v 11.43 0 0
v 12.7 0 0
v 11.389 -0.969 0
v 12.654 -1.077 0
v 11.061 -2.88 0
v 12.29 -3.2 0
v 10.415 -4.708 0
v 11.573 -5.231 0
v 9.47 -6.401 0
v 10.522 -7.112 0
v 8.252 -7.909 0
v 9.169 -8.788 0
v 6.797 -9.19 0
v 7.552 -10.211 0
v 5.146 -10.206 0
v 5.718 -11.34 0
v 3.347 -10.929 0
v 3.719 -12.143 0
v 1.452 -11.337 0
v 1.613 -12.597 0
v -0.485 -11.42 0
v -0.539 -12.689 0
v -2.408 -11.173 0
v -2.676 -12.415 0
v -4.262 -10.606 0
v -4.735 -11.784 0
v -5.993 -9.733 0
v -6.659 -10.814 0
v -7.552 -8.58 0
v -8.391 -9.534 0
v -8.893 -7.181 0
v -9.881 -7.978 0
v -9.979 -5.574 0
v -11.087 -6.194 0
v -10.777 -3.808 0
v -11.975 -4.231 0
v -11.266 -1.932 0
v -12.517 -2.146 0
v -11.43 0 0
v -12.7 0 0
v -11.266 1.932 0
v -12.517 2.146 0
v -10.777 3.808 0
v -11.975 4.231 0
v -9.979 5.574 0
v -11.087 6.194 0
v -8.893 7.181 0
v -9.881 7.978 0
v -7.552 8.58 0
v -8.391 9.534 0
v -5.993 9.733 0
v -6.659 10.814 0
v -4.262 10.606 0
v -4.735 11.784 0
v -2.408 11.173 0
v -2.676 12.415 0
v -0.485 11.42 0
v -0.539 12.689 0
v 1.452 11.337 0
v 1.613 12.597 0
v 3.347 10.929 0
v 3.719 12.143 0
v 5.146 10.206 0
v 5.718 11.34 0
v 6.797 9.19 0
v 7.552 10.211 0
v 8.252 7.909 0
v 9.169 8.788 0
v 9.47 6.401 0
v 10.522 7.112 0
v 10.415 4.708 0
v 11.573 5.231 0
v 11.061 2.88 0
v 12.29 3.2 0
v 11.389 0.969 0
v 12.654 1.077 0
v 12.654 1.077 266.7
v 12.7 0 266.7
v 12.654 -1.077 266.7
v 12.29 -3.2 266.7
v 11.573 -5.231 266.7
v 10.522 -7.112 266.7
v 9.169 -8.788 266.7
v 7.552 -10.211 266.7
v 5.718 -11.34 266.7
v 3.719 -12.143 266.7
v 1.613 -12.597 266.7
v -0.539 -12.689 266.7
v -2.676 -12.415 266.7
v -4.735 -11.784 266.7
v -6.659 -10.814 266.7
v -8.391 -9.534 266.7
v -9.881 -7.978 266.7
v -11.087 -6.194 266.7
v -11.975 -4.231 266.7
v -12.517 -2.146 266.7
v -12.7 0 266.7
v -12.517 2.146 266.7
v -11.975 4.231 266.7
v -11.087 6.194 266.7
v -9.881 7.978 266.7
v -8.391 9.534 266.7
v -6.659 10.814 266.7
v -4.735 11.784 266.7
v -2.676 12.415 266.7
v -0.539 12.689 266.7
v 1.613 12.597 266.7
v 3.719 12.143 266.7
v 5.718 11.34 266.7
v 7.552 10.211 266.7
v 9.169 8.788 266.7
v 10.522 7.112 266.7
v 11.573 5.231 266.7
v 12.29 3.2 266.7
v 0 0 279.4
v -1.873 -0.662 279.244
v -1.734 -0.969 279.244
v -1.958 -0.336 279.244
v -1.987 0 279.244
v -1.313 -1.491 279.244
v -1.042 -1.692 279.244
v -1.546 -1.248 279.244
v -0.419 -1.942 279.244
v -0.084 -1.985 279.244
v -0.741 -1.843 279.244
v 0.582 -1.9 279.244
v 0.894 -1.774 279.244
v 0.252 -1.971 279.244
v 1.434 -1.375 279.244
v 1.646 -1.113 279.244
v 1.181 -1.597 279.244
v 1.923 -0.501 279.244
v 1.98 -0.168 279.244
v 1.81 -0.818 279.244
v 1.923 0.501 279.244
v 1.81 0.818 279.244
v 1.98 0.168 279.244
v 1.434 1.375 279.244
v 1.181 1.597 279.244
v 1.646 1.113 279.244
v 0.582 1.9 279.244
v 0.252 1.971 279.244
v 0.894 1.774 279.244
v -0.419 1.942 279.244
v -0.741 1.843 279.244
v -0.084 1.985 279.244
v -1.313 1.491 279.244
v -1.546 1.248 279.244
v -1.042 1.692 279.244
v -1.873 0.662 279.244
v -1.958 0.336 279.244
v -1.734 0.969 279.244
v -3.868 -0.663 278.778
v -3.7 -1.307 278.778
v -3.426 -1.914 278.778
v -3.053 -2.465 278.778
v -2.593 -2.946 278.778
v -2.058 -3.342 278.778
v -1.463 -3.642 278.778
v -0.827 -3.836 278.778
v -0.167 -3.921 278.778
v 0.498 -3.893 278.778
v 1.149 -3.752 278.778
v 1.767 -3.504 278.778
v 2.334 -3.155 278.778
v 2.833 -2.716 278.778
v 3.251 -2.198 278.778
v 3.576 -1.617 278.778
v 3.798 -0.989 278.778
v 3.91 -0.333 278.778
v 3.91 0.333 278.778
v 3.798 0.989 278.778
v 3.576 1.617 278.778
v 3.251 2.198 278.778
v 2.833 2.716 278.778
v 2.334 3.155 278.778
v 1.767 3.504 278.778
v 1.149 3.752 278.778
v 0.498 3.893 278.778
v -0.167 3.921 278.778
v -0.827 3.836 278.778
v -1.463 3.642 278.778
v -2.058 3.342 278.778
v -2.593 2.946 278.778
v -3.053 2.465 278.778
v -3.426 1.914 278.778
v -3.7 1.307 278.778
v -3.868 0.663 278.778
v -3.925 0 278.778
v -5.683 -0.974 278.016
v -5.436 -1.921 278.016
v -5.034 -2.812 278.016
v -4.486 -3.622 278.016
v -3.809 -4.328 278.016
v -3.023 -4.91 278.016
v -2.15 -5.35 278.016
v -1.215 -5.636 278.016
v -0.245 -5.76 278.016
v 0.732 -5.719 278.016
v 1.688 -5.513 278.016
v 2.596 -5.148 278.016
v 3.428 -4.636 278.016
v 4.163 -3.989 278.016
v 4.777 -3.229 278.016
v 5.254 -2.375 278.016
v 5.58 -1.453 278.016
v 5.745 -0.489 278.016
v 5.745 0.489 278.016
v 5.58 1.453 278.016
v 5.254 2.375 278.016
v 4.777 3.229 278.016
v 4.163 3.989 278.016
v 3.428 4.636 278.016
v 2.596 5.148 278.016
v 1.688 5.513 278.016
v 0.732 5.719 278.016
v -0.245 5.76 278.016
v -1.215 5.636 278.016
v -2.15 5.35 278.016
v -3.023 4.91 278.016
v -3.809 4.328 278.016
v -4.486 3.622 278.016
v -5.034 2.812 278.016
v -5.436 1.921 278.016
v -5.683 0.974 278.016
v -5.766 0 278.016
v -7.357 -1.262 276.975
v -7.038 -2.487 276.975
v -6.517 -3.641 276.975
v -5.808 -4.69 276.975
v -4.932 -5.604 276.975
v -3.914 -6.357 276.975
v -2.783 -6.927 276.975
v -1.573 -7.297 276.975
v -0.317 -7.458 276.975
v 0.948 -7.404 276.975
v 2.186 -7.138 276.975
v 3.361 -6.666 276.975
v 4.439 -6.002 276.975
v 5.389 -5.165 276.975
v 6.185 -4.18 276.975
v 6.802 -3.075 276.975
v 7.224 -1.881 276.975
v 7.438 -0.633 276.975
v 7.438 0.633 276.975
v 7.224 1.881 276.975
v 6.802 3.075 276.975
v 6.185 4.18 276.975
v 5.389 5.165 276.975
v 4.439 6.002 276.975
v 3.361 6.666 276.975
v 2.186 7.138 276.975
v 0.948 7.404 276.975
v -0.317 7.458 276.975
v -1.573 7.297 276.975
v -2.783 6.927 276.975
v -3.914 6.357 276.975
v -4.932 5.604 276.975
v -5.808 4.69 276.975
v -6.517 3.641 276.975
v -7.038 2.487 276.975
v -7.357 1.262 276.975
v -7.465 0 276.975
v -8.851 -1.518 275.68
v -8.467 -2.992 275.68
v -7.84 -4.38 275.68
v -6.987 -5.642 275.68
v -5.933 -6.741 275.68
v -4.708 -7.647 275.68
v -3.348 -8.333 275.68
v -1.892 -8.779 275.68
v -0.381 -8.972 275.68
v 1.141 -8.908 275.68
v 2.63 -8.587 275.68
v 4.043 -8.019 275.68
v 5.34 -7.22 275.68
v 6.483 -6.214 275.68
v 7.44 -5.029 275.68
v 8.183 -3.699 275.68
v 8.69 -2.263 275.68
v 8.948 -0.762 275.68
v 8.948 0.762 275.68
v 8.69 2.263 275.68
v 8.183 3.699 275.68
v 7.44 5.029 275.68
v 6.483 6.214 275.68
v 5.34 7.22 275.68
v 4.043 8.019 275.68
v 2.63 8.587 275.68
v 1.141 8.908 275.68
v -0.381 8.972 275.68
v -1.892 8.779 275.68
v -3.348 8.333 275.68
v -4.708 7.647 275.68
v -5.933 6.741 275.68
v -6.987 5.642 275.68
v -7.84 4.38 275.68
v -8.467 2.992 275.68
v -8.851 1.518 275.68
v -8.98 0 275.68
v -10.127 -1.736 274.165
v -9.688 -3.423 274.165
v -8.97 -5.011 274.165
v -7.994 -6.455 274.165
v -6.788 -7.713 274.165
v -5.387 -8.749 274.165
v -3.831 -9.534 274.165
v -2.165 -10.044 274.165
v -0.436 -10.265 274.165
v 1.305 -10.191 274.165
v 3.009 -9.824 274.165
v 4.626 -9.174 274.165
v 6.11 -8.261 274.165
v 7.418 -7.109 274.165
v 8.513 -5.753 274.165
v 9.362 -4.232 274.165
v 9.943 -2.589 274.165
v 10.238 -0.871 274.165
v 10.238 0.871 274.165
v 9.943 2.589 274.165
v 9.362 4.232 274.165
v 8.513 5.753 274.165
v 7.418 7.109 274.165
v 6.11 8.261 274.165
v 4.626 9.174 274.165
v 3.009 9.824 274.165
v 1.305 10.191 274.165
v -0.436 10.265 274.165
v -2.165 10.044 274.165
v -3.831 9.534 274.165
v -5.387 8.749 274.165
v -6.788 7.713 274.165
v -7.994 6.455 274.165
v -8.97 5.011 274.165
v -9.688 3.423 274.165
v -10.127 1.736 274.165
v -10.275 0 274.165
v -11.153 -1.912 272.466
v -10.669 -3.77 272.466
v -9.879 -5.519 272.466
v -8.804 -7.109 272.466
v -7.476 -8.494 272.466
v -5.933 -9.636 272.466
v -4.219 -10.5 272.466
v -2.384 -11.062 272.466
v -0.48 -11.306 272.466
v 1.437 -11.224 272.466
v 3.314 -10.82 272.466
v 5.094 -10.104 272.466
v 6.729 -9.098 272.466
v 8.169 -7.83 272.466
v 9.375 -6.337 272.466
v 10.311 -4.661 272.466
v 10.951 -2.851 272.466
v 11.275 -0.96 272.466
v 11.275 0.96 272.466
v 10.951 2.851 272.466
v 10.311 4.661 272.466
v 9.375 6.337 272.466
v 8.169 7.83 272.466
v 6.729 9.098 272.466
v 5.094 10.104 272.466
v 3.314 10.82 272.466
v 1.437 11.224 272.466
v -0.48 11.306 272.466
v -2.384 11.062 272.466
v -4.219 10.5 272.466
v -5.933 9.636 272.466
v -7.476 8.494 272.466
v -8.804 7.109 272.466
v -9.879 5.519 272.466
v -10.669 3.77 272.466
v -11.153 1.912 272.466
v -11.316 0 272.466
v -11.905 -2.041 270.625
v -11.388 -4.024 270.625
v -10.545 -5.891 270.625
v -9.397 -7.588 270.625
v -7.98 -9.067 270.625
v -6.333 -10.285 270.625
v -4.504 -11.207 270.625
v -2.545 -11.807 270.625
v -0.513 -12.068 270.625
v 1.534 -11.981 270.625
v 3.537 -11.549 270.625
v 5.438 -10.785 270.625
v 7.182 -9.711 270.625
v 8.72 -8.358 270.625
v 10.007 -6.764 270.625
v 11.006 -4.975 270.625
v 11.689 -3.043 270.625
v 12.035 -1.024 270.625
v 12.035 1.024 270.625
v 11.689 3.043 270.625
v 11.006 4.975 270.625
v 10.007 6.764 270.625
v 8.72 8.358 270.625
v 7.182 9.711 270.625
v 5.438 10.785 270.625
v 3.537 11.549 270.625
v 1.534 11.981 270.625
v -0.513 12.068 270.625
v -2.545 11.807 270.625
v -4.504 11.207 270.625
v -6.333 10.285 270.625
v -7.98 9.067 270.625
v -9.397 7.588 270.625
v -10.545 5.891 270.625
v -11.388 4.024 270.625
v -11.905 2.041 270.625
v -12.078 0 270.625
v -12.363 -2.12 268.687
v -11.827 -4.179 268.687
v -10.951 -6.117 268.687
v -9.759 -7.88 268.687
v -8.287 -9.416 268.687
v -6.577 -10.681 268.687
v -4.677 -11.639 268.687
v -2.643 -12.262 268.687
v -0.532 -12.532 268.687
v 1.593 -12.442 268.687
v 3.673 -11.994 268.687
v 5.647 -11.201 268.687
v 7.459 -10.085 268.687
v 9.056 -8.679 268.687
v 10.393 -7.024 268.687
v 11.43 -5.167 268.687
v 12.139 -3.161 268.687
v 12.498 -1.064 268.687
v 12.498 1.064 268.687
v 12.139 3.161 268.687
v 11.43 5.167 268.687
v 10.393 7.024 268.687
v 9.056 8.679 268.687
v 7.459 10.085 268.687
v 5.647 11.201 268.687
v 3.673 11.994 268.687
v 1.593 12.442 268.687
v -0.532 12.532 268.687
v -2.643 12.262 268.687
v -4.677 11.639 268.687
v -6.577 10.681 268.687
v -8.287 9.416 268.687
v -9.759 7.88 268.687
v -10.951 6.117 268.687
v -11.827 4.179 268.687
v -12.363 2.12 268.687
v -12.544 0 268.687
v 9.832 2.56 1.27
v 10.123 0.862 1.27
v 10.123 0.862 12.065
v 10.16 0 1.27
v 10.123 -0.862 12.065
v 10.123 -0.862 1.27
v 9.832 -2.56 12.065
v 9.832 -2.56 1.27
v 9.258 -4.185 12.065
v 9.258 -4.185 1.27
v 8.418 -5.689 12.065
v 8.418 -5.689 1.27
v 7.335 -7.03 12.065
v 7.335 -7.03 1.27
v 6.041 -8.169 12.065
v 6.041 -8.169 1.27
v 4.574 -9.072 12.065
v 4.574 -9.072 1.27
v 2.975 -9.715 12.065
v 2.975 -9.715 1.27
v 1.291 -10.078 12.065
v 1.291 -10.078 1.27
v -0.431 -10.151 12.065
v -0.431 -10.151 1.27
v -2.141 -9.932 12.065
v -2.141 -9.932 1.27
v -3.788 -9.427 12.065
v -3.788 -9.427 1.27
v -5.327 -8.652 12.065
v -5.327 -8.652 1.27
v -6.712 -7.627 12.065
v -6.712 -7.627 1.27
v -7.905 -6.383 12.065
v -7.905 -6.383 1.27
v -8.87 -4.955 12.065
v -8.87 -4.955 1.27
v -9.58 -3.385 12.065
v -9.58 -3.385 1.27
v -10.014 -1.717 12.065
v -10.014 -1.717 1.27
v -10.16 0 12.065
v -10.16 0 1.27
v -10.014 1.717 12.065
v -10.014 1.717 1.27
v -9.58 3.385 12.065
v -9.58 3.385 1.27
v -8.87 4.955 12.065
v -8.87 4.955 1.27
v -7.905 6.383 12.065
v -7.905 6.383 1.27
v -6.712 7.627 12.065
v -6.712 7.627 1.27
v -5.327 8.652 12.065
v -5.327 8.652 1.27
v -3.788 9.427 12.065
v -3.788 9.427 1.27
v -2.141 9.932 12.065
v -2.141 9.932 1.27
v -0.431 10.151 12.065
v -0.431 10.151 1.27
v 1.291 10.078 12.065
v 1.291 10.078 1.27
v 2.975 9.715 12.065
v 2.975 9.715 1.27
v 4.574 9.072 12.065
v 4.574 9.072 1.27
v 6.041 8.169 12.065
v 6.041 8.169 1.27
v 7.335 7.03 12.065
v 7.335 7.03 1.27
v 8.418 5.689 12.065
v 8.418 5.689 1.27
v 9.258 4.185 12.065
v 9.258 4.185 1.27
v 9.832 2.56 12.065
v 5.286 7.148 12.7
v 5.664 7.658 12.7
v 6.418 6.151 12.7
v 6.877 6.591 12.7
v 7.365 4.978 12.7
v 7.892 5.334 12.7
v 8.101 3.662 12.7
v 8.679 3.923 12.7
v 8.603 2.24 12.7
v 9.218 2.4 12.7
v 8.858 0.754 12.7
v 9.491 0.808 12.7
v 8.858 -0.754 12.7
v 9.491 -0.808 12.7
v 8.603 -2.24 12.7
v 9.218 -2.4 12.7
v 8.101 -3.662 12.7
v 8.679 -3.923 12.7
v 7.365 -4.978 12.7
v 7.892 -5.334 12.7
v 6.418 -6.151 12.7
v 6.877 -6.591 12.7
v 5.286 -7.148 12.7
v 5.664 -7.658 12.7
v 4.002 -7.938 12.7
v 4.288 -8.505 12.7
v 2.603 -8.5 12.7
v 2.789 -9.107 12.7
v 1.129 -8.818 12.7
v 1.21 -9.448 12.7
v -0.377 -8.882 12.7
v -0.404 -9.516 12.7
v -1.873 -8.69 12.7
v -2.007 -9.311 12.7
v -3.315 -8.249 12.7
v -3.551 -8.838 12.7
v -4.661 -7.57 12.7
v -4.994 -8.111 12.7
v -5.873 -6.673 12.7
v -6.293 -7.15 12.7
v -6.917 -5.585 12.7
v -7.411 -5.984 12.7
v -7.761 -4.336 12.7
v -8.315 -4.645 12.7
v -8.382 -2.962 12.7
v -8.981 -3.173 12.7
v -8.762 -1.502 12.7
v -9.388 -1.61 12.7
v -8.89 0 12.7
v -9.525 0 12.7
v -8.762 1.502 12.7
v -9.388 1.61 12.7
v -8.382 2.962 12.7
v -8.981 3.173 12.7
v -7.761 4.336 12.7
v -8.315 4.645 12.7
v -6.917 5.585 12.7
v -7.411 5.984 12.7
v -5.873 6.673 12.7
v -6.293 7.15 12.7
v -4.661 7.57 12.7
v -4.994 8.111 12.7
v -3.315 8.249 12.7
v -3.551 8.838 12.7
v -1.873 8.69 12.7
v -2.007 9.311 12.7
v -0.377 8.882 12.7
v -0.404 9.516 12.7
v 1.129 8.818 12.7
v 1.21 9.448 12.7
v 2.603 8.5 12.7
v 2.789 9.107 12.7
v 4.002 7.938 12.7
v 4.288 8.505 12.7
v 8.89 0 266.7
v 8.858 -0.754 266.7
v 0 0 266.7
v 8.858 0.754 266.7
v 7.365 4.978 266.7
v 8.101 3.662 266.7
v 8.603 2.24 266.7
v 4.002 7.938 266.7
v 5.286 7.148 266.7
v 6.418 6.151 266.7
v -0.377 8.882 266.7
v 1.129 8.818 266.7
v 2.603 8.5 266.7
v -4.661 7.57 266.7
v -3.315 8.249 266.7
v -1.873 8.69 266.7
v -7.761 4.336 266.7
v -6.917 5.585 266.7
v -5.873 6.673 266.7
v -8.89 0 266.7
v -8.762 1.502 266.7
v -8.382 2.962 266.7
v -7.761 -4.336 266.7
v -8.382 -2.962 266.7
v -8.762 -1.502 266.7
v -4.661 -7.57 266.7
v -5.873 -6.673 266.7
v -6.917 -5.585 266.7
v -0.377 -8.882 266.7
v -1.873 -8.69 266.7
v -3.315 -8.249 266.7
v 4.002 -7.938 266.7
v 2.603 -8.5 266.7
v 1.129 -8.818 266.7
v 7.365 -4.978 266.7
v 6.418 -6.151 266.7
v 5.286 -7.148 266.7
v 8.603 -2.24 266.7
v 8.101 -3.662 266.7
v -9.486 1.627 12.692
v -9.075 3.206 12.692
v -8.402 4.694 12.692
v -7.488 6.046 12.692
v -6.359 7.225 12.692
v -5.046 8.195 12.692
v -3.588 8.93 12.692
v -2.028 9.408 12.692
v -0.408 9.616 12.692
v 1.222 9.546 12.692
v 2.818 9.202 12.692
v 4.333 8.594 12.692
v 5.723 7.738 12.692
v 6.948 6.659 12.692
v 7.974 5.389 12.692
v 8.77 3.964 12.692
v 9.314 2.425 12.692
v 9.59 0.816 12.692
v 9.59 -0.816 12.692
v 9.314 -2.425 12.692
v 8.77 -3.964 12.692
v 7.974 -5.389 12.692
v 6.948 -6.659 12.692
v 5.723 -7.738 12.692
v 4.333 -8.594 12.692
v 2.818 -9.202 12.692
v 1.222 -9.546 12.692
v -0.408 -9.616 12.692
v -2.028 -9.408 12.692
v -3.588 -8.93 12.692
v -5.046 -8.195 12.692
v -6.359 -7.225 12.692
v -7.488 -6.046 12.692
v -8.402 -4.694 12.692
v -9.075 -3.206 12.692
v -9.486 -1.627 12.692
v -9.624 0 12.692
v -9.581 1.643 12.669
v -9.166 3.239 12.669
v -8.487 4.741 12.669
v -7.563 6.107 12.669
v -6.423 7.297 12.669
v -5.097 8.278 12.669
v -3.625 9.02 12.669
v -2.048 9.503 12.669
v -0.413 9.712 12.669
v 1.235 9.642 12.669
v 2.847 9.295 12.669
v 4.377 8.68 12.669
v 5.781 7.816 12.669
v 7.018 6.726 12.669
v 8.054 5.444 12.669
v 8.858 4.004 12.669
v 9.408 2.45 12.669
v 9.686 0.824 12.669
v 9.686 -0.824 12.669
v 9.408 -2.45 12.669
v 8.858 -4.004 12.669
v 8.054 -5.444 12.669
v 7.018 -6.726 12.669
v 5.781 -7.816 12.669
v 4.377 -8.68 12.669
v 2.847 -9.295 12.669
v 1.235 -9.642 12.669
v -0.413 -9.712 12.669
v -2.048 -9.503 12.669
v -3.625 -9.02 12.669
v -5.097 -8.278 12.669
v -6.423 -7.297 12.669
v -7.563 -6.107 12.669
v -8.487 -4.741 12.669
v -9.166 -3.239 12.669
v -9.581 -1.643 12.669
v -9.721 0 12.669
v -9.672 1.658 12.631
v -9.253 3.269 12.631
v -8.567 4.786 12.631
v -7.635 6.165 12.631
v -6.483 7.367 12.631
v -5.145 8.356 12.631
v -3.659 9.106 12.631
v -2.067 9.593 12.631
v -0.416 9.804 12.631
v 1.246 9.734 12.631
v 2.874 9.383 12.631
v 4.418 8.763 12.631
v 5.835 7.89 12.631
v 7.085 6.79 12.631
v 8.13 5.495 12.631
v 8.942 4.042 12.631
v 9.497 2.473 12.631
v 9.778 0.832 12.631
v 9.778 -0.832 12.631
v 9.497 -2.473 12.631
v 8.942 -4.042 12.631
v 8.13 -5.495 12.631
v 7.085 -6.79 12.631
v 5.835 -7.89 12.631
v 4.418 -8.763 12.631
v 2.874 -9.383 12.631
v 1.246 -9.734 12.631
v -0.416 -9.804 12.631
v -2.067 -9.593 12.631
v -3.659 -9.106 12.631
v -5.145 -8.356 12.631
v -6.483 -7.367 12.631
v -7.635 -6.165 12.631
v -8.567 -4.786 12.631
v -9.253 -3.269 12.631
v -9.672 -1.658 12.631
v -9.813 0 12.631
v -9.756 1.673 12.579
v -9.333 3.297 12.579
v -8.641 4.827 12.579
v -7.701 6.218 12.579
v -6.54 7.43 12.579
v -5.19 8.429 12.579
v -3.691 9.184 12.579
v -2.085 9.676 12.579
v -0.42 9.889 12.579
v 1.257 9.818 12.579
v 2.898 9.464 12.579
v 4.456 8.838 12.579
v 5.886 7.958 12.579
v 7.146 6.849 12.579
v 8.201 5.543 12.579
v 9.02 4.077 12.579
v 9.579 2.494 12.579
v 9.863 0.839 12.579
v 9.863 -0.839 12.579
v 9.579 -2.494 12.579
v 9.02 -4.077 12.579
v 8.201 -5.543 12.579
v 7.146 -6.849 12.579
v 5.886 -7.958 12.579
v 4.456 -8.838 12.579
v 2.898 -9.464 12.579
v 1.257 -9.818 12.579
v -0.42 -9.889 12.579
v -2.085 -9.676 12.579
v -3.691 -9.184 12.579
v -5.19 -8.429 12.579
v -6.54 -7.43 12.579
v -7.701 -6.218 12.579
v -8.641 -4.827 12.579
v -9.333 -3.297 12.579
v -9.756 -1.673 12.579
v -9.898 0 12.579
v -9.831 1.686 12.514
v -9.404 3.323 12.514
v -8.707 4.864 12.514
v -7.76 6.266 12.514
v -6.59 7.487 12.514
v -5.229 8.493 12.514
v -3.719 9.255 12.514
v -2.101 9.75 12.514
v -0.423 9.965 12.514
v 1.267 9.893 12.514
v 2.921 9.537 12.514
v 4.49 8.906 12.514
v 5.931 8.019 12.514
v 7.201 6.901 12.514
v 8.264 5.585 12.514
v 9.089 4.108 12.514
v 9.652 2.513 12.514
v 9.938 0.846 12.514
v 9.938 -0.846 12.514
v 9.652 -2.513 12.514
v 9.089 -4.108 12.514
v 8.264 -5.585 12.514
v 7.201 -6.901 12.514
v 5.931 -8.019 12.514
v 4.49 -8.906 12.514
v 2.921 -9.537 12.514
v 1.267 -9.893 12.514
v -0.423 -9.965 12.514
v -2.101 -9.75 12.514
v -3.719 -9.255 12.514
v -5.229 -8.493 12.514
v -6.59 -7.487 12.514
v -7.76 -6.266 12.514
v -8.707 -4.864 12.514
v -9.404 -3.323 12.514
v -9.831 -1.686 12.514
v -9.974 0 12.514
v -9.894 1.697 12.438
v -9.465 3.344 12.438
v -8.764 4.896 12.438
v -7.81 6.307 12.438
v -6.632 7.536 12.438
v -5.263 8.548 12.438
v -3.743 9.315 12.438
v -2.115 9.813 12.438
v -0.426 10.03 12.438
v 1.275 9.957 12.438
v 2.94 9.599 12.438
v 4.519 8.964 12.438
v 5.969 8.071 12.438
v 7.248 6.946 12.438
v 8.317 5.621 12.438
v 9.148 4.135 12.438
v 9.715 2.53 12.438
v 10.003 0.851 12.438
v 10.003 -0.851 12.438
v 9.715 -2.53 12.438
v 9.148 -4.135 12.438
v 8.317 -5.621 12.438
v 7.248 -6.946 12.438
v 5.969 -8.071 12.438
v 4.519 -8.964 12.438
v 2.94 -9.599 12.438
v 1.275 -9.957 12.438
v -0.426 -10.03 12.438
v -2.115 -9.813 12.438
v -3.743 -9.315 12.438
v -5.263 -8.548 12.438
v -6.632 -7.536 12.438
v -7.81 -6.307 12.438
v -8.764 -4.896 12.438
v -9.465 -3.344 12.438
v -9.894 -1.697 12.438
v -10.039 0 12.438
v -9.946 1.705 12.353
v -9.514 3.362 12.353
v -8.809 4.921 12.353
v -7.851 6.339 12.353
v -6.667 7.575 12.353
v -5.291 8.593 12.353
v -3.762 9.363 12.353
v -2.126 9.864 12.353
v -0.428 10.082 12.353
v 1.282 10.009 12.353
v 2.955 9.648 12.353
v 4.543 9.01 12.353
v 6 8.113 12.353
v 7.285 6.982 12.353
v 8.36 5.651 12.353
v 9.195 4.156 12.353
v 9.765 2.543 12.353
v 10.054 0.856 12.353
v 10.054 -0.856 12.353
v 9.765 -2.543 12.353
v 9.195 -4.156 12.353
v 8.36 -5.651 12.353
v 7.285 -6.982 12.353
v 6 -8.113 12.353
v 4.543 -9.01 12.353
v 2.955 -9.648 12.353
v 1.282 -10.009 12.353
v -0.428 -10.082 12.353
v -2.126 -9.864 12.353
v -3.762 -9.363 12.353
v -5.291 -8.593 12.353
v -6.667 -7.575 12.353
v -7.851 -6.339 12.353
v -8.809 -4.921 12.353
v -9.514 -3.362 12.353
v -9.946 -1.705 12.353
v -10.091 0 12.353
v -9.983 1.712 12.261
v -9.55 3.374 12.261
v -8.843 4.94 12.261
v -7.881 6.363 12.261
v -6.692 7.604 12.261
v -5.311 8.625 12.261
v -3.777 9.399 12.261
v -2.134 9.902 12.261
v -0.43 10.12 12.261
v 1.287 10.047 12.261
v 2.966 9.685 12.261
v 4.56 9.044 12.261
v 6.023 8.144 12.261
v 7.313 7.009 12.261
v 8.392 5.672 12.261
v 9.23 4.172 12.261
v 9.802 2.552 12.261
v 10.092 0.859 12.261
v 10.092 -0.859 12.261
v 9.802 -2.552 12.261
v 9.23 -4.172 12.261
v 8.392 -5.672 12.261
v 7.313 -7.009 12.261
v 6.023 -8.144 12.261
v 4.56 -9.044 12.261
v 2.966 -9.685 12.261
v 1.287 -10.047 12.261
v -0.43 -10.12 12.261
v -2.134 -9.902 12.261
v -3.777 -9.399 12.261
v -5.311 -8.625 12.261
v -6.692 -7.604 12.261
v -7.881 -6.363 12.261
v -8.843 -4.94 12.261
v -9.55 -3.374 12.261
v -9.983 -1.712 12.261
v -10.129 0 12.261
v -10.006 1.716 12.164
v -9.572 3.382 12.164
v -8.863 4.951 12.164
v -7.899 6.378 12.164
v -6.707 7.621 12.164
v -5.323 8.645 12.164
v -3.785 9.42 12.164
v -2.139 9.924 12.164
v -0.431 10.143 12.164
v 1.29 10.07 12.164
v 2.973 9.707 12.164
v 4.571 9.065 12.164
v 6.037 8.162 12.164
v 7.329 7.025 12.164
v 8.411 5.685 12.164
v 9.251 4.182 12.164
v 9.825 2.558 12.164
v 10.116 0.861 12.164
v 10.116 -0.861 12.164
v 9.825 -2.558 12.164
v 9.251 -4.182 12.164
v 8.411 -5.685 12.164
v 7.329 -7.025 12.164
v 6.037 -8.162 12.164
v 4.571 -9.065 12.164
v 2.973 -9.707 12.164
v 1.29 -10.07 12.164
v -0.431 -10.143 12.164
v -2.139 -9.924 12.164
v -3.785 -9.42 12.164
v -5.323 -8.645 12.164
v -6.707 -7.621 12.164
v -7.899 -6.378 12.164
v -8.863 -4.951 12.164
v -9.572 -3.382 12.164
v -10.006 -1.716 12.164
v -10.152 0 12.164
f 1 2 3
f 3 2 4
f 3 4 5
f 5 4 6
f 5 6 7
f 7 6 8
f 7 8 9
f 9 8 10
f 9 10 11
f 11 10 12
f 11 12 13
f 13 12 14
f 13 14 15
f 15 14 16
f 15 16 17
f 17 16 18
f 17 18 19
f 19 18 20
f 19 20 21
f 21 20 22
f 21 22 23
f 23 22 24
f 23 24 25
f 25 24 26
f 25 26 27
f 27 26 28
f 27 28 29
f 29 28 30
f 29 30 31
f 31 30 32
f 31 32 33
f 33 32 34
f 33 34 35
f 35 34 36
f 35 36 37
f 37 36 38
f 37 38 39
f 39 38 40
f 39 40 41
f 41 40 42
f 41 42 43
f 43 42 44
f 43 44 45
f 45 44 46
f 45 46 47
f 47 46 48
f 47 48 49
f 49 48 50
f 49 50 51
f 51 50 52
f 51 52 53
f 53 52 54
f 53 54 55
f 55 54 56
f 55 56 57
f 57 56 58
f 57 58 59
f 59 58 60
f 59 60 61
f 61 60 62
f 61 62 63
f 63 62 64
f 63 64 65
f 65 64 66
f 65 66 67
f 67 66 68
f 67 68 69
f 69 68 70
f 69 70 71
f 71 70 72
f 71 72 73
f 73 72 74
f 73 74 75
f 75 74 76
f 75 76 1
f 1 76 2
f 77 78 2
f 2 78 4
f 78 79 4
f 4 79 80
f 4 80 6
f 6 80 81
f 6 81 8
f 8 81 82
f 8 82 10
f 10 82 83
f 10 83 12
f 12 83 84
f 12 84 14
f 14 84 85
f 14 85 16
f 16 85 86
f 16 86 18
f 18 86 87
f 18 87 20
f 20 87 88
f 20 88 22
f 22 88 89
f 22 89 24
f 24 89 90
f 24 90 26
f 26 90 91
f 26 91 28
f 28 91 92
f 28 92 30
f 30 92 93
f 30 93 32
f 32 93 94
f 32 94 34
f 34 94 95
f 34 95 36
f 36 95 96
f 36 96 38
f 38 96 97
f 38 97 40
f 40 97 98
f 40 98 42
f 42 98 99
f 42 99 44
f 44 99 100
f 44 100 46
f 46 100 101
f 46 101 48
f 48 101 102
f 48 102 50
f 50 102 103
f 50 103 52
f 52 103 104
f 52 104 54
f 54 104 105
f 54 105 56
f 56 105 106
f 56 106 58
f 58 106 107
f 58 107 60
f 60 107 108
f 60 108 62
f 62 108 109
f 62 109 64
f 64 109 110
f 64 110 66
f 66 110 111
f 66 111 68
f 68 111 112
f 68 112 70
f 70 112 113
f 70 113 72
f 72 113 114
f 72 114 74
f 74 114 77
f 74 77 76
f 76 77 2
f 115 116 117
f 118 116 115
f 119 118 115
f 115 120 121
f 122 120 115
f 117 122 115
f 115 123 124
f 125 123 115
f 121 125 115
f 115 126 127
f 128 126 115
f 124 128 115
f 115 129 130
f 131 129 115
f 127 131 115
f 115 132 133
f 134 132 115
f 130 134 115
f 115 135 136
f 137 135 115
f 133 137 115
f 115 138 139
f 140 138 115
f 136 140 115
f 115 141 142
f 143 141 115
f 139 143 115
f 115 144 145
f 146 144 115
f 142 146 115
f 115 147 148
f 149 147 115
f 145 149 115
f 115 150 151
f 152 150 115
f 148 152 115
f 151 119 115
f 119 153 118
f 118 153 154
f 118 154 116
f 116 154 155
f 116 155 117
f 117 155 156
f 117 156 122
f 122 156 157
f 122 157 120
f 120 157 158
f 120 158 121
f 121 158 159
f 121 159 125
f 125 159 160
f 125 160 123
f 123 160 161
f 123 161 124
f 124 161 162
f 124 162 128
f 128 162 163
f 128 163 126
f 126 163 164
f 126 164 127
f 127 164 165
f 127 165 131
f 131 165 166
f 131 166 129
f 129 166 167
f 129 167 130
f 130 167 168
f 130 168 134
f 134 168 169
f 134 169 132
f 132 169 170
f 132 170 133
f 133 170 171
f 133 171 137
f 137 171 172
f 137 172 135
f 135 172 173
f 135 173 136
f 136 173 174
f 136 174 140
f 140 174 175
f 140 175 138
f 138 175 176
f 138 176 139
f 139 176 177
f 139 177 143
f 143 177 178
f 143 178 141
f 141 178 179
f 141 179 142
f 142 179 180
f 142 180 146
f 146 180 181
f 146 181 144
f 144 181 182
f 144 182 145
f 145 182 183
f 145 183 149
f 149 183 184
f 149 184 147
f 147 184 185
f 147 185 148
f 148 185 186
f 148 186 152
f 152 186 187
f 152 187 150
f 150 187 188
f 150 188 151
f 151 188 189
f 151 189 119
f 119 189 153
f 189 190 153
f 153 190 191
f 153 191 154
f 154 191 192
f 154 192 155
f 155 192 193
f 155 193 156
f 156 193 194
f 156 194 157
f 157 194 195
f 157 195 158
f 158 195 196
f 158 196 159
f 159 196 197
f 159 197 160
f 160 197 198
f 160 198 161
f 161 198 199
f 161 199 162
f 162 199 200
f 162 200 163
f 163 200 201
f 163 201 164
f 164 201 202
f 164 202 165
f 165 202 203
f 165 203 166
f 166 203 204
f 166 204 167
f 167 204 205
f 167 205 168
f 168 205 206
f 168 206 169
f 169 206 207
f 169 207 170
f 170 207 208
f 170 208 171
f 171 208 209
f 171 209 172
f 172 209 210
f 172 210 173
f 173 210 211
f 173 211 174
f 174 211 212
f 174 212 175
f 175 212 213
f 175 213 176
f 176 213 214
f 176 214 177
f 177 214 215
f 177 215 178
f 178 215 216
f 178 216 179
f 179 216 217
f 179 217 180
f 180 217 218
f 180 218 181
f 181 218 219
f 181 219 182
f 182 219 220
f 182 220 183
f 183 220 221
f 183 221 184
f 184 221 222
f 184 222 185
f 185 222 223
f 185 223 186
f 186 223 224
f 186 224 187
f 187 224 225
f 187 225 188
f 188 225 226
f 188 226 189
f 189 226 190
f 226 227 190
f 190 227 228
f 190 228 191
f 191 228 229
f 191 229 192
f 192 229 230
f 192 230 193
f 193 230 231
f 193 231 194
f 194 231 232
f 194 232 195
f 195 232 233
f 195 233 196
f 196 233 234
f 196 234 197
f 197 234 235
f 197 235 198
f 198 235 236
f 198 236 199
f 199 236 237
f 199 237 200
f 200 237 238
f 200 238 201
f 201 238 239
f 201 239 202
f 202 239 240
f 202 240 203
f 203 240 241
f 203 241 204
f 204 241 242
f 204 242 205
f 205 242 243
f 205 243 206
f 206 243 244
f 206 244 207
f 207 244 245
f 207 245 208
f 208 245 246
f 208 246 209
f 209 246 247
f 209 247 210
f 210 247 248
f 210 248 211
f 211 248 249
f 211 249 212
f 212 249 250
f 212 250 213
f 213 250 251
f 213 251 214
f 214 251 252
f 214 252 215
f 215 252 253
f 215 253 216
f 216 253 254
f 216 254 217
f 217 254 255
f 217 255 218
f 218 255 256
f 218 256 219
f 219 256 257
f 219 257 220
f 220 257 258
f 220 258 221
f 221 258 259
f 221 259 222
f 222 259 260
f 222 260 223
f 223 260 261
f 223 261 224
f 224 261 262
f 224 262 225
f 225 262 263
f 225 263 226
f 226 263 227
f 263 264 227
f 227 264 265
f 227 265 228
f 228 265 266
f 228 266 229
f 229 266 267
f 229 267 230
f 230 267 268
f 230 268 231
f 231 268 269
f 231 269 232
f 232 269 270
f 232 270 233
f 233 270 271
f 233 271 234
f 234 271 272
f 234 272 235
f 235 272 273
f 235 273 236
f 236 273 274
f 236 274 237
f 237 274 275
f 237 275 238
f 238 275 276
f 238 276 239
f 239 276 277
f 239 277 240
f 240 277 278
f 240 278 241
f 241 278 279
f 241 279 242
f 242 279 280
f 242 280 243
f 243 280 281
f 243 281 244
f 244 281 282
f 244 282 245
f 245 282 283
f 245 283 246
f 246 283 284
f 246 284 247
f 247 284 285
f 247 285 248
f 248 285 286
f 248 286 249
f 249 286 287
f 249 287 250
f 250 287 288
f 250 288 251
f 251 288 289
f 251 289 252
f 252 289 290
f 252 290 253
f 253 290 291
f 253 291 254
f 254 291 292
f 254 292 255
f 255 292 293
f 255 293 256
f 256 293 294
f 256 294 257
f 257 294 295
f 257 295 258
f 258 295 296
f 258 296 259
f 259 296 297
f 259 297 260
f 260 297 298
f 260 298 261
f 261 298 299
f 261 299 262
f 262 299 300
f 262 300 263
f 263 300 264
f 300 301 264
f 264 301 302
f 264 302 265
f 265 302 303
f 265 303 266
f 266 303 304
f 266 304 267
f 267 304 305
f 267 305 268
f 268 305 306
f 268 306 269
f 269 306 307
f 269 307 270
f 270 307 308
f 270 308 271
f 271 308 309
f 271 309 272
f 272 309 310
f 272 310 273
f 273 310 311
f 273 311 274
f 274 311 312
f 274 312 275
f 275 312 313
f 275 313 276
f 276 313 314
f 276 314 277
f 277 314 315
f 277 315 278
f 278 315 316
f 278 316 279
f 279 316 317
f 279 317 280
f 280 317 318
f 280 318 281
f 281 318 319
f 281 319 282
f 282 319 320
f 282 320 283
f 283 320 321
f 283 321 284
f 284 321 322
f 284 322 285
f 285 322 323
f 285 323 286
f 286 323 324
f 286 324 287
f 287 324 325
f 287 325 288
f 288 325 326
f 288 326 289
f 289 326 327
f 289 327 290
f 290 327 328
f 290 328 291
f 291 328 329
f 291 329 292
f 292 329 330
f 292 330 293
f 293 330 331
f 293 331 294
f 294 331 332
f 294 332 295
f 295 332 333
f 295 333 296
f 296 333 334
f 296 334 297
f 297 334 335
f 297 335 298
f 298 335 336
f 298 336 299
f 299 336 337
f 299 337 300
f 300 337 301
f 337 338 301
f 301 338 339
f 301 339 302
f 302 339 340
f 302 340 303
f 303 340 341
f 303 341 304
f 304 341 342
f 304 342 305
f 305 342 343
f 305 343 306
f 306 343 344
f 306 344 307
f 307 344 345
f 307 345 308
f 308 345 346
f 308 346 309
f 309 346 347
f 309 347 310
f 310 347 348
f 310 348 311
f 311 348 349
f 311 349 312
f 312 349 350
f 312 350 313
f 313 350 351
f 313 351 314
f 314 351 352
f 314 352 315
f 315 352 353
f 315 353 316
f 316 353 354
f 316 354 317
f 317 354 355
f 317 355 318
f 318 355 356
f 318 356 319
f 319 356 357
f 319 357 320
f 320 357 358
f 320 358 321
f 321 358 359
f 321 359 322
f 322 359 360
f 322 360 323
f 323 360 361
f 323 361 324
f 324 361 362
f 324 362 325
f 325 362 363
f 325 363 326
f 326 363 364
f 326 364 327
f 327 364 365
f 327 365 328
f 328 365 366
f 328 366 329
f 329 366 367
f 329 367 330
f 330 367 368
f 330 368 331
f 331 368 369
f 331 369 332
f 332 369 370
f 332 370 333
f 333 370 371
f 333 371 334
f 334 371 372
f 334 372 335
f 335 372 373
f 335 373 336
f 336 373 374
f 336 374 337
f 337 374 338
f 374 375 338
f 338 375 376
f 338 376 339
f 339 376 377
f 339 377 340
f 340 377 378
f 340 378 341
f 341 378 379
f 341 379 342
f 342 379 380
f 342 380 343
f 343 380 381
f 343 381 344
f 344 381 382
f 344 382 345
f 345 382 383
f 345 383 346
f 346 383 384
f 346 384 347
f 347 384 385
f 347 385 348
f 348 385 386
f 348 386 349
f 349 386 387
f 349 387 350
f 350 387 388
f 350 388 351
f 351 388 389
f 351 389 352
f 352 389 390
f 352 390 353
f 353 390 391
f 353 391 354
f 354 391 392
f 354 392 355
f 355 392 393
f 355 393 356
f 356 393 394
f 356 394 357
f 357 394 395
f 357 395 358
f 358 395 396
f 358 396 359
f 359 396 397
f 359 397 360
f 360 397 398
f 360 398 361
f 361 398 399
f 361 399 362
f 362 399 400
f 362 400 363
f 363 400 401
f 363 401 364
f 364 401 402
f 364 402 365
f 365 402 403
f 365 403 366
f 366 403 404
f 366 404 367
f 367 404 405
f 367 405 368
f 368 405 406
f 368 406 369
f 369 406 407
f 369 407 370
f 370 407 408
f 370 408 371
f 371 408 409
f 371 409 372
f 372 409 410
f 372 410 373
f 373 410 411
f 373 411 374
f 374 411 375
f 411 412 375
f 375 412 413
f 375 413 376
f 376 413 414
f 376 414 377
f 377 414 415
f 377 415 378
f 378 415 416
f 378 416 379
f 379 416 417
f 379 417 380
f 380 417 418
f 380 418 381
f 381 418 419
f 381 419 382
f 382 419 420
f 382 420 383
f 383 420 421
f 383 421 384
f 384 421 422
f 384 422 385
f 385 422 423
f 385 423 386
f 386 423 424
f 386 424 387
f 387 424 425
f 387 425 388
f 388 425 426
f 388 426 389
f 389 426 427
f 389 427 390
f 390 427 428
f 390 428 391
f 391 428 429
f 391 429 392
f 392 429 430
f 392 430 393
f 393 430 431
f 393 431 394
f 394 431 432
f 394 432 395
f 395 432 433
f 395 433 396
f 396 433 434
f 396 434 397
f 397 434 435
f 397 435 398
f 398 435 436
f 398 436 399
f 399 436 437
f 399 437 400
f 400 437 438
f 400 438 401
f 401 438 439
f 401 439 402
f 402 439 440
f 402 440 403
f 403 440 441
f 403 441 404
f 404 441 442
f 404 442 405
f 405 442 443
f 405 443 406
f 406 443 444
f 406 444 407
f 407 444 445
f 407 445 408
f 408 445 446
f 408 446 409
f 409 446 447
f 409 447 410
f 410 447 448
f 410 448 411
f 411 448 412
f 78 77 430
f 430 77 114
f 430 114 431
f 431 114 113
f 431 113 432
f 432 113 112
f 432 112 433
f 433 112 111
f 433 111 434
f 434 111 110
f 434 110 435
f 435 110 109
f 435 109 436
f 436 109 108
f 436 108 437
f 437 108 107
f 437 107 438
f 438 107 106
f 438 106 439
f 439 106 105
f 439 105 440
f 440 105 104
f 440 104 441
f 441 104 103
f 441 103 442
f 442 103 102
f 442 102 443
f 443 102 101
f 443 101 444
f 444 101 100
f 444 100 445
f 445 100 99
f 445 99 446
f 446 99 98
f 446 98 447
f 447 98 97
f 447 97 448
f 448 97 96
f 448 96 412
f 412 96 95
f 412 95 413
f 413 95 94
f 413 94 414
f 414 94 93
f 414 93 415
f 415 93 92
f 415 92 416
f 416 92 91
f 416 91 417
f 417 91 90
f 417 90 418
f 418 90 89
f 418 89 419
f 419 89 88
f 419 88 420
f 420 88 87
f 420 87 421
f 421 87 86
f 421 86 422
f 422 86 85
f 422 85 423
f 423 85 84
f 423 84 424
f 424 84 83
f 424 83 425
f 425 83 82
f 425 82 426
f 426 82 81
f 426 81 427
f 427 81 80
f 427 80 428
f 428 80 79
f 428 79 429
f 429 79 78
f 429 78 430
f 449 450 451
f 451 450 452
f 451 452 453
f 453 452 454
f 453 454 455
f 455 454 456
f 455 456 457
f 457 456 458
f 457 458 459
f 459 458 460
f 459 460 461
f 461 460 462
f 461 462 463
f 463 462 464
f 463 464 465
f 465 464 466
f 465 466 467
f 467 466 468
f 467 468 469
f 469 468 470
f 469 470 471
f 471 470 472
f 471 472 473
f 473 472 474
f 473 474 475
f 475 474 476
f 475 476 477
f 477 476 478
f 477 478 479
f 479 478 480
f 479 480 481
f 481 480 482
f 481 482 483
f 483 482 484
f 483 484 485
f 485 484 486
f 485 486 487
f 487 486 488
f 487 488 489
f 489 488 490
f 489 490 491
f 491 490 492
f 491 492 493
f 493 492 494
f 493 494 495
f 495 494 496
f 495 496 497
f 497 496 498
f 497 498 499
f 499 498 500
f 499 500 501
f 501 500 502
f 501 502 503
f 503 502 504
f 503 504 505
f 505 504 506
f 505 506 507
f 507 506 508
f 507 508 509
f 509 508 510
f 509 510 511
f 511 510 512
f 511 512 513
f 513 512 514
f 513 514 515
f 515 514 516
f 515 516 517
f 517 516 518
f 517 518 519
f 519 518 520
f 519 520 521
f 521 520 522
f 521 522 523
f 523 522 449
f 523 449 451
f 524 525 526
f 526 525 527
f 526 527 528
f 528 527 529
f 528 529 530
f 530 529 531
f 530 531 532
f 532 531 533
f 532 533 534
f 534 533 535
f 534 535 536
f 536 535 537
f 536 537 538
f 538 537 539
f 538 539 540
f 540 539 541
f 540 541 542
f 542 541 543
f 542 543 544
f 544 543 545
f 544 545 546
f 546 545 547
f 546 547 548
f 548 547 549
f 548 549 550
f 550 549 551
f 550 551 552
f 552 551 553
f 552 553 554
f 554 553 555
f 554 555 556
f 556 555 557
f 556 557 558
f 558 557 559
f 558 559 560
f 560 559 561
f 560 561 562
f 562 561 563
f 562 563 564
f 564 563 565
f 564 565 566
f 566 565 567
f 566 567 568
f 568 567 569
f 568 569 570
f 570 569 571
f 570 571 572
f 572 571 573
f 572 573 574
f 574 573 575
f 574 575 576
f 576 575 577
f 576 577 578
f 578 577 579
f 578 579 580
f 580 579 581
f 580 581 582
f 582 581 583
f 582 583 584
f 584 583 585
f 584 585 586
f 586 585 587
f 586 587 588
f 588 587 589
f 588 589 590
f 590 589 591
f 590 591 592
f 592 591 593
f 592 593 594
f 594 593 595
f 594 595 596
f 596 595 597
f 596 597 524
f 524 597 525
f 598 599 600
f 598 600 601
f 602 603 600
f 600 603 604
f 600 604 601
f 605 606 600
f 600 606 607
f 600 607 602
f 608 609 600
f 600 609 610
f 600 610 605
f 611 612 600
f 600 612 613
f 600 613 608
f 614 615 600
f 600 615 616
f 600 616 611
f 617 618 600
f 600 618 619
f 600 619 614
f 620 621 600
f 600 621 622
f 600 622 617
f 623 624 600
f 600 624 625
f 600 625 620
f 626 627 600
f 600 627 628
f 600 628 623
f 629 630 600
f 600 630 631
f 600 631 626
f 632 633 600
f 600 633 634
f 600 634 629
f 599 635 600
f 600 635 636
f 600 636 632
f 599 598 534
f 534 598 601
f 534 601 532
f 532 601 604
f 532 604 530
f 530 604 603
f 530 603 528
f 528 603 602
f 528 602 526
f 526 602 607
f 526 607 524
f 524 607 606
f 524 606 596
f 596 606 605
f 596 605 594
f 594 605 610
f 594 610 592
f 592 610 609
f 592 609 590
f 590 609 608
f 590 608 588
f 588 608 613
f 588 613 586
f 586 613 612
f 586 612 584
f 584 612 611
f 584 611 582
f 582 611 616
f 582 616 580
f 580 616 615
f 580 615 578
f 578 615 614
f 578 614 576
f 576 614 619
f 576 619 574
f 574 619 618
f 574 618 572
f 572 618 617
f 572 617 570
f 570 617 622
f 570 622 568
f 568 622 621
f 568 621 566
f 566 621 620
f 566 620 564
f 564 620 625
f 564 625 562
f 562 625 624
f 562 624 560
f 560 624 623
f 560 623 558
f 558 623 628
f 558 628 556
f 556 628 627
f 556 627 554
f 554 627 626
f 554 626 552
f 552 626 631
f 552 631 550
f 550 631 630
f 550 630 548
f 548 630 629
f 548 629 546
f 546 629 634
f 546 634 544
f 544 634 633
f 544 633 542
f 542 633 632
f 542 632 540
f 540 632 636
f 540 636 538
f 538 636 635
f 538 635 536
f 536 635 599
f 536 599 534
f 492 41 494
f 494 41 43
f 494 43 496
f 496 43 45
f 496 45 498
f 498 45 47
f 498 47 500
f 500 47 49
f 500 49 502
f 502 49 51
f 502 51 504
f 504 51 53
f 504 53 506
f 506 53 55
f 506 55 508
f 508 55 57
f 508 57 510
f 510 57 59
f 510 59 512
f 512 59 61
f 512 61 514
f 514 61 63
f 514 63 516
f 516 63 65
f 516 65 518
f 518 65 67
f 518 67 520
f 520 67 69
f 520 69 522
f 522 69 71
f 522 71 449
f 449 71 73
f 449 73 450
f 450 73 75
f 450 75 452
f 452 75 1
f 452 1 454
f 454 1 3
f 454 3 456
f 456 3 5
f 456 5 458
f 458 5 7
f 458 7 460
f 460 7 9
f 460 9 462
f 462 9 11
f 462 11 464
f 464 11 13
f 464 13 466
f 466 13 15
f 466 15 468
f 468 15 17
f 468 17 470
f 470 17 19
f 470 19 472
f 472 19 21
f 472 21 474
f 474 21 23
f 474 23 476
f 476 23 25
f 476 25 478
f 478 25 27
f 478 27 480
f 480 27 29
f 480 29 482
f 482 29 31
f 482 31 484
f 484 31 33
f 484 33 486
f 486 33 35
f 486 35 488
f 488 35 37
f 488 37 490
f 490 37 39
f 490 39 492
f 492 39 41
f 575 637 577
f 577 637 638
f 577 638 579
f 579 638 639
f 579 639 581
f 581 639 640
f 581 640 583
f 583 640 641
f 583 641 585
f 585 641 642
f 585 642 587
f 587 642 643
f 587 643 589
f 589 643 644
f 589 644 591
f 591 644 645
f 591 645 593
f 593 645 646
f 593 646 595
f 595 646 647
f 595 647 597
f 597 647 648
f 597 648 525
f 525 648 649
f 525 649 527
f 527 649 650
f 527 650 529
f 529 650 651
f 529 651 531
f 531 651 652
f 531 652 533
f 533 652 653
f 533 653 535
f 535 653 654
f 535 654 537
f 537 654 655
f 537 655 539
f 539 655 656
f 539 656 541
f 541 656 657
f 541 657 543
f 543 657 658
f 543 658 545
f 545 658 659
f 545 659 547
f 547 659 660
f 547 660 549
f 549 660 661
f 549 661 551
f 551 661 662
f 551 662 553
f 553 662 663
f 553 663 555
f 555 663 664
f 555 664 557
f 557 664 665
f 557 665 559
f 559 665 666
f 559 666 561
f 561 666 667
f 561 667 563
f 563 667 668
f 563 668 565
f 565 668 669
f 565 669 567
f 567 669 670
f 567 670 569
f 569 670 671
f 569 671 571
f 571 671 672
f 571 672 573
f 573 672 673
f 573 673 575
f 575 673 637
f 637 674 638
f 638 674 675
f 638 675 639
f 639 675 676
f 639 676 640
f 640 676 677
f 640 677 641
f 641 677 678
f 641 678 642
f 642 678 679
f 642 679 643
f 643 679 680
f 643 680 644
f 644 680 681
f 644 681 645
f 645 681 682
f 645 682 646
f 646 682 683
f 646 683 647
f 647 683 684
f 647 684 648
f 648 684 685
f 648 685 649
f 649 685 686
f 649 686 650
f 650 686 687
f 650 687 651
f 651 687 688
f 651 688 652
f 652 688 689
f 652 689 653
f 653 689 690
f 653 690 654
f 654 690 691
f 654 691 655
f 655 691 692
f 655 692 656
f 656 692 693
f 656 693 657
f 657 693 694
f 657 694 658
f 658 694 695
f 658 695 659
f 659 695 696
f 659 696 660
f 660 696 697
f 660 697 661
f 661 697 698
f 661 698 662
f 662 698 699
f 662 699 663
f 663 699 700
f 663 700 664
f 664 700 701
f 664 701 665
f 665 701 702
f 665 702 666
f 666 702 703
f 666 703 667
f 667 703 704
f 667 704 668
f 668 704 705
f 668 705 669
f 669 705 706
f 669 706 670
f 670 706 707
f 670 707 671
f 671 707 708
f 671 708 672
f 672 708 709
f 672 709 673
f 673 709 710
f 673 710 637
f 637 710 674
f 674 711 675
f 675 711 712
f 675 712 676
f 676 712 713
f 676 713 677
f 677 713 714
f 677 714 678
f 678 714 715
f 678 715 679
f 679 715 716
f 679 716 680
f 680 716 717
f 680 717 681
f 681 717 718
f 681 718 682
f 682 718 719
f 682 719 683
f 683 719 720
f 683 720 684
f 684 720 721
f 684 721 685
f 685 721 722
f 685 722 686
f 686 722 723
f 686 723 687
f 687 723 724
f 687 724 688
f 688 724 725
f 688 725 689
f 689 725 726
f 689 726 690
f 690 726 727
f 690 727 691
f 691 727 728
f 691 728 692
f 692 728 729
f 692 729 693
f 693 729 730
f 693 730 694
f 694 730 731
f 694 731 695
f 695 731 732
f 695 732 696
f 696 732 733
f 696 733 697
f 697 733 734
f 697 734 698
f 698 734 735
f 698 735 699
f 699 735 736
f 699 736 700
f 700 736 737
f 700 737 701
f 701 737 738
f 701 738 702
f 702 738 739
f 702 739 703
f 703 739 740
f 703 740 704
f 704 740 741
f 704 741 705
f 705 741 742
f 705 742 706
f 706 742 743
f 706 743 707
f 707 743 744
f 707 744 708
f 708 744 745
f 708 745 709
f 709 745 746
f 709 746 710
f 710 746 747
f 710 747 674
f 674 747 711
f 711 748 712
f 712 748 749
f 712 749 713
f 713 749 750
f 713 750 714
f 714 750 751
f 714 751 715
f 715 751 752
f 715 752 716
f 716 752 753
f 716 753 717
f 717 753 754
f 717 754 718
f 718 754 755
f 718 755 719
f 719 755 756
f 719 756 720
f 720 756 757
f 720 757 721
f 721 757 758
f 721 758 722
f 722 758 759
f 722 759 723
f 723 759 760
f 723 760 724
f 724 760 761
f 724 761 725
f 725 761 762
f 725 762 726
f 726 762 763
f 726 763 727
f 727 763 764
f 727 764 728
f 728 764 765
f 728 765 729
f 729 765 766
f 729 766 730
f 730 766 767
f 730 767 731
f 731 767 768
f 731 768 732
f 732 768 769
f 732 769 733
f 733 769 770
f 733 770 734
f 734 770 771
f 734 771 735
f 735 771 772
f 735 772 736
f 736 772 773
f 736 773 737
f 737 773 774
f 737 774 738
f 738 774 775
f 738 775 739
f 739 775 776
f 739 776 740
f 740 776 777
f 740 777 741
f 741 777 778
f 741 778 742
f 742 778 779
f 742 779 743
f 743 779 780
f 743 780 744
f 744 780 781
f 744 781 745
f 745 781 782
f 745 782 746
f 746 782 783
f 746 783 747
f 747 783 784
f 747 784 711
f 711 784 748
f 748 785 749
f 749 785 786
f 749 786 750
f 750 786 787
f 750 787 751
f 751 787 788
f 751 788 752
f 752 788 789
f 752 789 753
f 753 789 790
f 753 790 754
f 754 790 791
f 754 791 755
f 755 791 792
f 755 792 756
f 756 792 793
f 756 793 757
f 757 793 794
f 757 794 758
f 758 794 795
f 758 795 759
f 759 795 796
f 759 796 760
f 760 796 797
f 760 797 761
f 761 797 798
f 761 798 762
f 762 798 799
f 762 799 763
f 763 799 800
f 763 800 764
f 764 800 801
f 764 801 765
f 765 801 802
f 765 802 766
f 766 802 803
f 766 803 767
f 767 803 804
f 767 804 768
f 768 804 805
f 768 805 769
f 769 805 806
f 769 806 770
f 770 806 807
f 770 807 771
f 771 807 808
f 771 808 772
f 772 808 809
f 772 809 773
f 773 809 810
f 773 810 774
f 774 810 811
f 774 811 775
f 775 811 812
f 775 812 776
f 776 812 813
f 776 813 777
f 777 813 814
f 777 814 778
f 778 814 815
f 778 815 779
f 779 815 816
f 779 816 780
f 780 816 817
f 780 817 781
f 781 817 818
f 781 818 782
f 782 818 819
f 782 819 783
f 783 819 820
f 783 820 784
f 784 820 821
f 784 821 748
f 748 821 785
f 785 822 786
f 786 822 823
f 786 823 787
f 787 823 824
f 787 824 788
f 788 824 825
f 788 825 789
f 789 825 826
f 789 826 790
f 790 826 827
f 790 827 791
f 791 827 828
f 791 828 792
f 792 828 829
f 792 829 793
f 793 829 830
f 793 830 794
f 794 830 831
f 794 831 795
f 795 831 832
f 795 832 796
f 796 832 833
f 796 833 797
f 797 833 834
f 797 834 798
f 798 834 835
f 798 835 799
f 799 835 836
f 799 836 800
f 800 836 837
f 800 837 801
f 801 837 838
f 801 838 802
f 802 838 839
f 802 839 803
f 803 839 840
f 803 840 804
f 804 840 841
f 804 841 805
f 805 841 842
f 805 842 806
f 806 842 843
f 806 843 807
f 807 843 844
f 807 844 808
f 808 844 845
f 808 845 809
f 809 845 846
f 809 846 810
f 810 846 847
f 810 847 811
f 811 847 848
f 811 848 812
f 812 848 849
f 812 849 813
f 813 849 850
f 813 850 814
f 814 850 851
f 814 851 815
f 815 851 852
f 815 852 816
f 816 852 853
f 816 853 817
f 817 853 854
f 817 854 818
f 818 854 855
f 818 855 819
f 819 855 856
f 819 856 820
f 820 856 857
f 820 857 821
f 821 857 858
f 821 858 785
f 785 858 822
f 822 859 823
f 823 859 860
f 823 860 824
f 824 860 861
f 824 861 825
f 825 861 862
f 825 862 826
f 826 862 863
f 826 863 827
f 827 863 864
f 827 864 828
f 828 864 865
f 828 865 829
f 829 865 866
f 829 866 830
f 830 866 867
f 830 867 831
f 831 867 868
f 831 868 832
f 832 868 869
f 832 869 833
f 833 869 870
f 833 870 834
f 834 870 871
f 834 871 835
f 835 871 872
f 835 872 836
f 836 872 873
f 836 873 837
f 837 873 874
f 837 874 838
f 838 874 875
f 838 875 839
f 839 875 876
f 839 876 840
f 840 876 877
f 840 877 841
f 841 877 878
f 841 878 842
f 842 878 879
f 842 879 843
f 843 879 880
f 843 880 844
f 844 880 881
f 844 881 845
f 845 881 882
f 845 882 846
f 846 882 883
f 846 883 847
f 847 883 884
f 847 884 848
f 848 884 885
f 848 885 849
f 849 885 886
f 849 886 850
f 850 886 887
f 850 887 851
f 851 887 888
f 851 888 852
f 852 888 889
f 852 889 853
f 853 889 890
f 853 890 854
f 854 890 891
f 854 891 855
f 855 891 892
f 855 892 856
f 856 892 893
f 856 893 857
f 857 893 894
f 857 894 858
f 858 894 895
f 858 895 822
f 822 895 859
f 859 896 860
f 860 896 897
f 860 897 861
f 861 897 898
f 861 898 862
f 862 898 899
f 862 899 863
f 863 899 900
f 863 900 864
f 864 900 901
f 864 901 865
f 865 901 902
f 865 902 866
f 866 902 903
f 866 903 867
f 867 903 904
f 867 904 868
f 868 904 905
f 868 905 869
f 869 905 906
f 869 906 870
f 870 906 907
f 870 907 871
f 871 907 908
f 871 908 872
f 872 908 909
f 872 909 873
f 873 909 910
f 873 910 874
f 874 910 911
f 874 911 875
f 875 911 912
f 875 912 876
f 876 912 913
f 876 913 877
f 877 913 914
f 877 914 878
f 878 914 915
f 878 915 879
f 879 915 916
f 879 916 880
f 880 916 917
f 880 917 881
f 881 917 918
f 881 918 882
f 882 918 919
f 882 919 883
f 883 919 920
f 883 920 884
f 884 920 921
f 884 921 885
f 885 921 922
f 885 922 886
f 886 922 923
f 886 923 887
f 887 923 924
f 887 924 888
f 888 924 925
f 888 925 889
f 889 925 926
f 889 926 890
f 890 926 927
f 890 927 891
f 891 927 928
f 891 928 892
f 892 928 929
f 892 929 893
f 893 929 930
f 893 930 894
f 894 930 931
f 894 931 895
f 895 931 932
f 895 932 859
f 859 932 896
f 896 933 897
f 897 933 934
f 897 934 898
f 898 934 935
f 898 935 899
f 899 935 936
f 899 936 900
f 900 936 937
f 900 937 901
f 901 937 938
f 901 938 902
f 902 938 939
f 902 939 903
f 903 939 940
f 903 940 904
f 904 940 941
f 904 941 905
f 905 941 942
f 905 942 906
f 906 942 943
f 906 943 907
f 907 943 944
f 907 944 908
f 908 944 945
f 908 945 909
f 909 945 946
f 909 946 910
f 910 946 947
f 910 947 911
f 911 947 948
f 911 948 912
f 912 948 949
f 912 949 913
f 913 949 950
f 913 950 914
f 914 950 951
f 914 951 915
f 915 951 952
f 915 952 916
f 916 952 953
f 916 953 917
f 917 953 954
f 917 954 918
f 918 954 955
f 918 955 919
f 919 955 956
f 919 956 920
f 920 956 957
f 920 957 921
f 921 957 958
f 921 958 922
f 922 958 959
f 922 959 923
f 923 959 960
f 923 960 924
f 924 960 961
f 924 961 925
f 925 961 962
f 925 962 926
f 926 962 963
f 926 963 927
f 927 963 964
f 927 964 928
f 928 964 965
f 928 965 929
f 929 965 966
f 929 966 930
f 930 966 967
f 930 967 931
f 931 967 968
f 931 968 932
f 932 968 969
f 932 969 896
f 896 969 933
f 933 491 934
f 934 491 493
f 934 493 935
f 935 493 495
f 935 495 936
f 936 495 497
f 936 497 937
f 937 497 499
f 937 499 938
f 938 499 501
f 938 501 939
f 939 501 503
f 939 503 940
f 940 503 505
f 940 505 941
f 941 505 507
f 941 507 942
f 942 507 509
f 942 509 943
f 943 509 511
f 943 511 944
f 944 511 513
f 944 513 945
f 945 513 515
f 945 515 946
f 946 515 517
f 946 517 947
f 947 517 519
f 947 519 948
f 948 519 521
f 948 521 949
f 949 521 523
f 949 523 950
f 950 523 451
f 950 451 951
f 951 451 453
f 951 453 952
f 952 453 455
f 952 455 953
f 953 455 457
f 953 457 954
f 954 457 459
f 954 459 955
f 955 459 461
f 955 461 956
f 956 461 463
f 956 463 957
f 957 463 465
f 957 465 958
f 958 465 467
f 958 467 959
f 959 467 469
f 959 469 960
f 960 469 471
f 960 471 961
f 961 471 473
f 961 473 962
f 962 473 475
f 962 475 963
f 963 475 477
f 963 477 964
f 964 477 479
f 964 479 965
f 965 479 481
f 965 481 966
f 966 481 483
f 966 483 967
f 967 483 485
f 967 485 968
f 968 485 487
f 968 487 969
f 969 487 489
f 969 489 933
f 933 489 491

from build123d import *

# Parameters (mm, degrees)
SKETCH1_R           = 12.7
SKETCH1_R_2         = 8.89
BOSS_EXTRUDE1_DEPTH = 266.7
SKETCH3_R           = 10.16
CUT_EXTRUDE1_DEPTH  = 12.7
CHAMFER1_SIZE       = 1.27
FILLET1_R           = 0.635


with BuildPart() as part:
    # Sketch1 → Boss-Extrude1 (new body)
    with BuildSketch(Plane.XY):
        Circle(SKETCH1_R)
        Circle(SKETCH1_R_2, mode=Mode.SUBTRACT)
    extrude(amount=BOSS_EXTRUDE1_DEPTH)

    # Sketch2 → Revolve1 (revolve)
    with BuildSketch(Plane(origin=(0, 0, 0), x_dir=(1, 0, 0), z_dir=(0, 1, 0))):
        with BuildLine():
            Line((-12.7, -266.7), (0, -266.7))
            Line((0, -266.7), (0, -279.4))
            ThreePointArc((0, -279.4), (-8.980256121, -275.680256121), (-12.7, -266.7))
        make_face()
    revolve(axis=Axis((0, 0, 279.4), (0, 0, -1)))

    # Sketch3 → Cut-Extrude1 (cut)
    with BuildSketch(Plane(origin=(0, 0, 0), x_dir=(-1, 0, 0), z_dir=(0, 0, -1))):
        Circle(SKETCH3_R)
    extrude(amount=-CUT_EXTRUDE1_DEPTH, mode=Mode.SUBTRACT)

    # Chamfer1
    chamfer1_edges = [part.edges().sort_by_distance(p)[0] for p in [
        (10.16, 0, 0),
    ]]
    chamfer(chamfer1_edges, length=CHAMFER1_SIZE)

    # Fillet1
    fillet1_edges = [part.edges().sort_by_distance(p)[0] for p in [
        (10.16, 0, 12.7),
    ]]
    fillet(fillet1_edges, radius=FILLET1_R)


solid = part.part
